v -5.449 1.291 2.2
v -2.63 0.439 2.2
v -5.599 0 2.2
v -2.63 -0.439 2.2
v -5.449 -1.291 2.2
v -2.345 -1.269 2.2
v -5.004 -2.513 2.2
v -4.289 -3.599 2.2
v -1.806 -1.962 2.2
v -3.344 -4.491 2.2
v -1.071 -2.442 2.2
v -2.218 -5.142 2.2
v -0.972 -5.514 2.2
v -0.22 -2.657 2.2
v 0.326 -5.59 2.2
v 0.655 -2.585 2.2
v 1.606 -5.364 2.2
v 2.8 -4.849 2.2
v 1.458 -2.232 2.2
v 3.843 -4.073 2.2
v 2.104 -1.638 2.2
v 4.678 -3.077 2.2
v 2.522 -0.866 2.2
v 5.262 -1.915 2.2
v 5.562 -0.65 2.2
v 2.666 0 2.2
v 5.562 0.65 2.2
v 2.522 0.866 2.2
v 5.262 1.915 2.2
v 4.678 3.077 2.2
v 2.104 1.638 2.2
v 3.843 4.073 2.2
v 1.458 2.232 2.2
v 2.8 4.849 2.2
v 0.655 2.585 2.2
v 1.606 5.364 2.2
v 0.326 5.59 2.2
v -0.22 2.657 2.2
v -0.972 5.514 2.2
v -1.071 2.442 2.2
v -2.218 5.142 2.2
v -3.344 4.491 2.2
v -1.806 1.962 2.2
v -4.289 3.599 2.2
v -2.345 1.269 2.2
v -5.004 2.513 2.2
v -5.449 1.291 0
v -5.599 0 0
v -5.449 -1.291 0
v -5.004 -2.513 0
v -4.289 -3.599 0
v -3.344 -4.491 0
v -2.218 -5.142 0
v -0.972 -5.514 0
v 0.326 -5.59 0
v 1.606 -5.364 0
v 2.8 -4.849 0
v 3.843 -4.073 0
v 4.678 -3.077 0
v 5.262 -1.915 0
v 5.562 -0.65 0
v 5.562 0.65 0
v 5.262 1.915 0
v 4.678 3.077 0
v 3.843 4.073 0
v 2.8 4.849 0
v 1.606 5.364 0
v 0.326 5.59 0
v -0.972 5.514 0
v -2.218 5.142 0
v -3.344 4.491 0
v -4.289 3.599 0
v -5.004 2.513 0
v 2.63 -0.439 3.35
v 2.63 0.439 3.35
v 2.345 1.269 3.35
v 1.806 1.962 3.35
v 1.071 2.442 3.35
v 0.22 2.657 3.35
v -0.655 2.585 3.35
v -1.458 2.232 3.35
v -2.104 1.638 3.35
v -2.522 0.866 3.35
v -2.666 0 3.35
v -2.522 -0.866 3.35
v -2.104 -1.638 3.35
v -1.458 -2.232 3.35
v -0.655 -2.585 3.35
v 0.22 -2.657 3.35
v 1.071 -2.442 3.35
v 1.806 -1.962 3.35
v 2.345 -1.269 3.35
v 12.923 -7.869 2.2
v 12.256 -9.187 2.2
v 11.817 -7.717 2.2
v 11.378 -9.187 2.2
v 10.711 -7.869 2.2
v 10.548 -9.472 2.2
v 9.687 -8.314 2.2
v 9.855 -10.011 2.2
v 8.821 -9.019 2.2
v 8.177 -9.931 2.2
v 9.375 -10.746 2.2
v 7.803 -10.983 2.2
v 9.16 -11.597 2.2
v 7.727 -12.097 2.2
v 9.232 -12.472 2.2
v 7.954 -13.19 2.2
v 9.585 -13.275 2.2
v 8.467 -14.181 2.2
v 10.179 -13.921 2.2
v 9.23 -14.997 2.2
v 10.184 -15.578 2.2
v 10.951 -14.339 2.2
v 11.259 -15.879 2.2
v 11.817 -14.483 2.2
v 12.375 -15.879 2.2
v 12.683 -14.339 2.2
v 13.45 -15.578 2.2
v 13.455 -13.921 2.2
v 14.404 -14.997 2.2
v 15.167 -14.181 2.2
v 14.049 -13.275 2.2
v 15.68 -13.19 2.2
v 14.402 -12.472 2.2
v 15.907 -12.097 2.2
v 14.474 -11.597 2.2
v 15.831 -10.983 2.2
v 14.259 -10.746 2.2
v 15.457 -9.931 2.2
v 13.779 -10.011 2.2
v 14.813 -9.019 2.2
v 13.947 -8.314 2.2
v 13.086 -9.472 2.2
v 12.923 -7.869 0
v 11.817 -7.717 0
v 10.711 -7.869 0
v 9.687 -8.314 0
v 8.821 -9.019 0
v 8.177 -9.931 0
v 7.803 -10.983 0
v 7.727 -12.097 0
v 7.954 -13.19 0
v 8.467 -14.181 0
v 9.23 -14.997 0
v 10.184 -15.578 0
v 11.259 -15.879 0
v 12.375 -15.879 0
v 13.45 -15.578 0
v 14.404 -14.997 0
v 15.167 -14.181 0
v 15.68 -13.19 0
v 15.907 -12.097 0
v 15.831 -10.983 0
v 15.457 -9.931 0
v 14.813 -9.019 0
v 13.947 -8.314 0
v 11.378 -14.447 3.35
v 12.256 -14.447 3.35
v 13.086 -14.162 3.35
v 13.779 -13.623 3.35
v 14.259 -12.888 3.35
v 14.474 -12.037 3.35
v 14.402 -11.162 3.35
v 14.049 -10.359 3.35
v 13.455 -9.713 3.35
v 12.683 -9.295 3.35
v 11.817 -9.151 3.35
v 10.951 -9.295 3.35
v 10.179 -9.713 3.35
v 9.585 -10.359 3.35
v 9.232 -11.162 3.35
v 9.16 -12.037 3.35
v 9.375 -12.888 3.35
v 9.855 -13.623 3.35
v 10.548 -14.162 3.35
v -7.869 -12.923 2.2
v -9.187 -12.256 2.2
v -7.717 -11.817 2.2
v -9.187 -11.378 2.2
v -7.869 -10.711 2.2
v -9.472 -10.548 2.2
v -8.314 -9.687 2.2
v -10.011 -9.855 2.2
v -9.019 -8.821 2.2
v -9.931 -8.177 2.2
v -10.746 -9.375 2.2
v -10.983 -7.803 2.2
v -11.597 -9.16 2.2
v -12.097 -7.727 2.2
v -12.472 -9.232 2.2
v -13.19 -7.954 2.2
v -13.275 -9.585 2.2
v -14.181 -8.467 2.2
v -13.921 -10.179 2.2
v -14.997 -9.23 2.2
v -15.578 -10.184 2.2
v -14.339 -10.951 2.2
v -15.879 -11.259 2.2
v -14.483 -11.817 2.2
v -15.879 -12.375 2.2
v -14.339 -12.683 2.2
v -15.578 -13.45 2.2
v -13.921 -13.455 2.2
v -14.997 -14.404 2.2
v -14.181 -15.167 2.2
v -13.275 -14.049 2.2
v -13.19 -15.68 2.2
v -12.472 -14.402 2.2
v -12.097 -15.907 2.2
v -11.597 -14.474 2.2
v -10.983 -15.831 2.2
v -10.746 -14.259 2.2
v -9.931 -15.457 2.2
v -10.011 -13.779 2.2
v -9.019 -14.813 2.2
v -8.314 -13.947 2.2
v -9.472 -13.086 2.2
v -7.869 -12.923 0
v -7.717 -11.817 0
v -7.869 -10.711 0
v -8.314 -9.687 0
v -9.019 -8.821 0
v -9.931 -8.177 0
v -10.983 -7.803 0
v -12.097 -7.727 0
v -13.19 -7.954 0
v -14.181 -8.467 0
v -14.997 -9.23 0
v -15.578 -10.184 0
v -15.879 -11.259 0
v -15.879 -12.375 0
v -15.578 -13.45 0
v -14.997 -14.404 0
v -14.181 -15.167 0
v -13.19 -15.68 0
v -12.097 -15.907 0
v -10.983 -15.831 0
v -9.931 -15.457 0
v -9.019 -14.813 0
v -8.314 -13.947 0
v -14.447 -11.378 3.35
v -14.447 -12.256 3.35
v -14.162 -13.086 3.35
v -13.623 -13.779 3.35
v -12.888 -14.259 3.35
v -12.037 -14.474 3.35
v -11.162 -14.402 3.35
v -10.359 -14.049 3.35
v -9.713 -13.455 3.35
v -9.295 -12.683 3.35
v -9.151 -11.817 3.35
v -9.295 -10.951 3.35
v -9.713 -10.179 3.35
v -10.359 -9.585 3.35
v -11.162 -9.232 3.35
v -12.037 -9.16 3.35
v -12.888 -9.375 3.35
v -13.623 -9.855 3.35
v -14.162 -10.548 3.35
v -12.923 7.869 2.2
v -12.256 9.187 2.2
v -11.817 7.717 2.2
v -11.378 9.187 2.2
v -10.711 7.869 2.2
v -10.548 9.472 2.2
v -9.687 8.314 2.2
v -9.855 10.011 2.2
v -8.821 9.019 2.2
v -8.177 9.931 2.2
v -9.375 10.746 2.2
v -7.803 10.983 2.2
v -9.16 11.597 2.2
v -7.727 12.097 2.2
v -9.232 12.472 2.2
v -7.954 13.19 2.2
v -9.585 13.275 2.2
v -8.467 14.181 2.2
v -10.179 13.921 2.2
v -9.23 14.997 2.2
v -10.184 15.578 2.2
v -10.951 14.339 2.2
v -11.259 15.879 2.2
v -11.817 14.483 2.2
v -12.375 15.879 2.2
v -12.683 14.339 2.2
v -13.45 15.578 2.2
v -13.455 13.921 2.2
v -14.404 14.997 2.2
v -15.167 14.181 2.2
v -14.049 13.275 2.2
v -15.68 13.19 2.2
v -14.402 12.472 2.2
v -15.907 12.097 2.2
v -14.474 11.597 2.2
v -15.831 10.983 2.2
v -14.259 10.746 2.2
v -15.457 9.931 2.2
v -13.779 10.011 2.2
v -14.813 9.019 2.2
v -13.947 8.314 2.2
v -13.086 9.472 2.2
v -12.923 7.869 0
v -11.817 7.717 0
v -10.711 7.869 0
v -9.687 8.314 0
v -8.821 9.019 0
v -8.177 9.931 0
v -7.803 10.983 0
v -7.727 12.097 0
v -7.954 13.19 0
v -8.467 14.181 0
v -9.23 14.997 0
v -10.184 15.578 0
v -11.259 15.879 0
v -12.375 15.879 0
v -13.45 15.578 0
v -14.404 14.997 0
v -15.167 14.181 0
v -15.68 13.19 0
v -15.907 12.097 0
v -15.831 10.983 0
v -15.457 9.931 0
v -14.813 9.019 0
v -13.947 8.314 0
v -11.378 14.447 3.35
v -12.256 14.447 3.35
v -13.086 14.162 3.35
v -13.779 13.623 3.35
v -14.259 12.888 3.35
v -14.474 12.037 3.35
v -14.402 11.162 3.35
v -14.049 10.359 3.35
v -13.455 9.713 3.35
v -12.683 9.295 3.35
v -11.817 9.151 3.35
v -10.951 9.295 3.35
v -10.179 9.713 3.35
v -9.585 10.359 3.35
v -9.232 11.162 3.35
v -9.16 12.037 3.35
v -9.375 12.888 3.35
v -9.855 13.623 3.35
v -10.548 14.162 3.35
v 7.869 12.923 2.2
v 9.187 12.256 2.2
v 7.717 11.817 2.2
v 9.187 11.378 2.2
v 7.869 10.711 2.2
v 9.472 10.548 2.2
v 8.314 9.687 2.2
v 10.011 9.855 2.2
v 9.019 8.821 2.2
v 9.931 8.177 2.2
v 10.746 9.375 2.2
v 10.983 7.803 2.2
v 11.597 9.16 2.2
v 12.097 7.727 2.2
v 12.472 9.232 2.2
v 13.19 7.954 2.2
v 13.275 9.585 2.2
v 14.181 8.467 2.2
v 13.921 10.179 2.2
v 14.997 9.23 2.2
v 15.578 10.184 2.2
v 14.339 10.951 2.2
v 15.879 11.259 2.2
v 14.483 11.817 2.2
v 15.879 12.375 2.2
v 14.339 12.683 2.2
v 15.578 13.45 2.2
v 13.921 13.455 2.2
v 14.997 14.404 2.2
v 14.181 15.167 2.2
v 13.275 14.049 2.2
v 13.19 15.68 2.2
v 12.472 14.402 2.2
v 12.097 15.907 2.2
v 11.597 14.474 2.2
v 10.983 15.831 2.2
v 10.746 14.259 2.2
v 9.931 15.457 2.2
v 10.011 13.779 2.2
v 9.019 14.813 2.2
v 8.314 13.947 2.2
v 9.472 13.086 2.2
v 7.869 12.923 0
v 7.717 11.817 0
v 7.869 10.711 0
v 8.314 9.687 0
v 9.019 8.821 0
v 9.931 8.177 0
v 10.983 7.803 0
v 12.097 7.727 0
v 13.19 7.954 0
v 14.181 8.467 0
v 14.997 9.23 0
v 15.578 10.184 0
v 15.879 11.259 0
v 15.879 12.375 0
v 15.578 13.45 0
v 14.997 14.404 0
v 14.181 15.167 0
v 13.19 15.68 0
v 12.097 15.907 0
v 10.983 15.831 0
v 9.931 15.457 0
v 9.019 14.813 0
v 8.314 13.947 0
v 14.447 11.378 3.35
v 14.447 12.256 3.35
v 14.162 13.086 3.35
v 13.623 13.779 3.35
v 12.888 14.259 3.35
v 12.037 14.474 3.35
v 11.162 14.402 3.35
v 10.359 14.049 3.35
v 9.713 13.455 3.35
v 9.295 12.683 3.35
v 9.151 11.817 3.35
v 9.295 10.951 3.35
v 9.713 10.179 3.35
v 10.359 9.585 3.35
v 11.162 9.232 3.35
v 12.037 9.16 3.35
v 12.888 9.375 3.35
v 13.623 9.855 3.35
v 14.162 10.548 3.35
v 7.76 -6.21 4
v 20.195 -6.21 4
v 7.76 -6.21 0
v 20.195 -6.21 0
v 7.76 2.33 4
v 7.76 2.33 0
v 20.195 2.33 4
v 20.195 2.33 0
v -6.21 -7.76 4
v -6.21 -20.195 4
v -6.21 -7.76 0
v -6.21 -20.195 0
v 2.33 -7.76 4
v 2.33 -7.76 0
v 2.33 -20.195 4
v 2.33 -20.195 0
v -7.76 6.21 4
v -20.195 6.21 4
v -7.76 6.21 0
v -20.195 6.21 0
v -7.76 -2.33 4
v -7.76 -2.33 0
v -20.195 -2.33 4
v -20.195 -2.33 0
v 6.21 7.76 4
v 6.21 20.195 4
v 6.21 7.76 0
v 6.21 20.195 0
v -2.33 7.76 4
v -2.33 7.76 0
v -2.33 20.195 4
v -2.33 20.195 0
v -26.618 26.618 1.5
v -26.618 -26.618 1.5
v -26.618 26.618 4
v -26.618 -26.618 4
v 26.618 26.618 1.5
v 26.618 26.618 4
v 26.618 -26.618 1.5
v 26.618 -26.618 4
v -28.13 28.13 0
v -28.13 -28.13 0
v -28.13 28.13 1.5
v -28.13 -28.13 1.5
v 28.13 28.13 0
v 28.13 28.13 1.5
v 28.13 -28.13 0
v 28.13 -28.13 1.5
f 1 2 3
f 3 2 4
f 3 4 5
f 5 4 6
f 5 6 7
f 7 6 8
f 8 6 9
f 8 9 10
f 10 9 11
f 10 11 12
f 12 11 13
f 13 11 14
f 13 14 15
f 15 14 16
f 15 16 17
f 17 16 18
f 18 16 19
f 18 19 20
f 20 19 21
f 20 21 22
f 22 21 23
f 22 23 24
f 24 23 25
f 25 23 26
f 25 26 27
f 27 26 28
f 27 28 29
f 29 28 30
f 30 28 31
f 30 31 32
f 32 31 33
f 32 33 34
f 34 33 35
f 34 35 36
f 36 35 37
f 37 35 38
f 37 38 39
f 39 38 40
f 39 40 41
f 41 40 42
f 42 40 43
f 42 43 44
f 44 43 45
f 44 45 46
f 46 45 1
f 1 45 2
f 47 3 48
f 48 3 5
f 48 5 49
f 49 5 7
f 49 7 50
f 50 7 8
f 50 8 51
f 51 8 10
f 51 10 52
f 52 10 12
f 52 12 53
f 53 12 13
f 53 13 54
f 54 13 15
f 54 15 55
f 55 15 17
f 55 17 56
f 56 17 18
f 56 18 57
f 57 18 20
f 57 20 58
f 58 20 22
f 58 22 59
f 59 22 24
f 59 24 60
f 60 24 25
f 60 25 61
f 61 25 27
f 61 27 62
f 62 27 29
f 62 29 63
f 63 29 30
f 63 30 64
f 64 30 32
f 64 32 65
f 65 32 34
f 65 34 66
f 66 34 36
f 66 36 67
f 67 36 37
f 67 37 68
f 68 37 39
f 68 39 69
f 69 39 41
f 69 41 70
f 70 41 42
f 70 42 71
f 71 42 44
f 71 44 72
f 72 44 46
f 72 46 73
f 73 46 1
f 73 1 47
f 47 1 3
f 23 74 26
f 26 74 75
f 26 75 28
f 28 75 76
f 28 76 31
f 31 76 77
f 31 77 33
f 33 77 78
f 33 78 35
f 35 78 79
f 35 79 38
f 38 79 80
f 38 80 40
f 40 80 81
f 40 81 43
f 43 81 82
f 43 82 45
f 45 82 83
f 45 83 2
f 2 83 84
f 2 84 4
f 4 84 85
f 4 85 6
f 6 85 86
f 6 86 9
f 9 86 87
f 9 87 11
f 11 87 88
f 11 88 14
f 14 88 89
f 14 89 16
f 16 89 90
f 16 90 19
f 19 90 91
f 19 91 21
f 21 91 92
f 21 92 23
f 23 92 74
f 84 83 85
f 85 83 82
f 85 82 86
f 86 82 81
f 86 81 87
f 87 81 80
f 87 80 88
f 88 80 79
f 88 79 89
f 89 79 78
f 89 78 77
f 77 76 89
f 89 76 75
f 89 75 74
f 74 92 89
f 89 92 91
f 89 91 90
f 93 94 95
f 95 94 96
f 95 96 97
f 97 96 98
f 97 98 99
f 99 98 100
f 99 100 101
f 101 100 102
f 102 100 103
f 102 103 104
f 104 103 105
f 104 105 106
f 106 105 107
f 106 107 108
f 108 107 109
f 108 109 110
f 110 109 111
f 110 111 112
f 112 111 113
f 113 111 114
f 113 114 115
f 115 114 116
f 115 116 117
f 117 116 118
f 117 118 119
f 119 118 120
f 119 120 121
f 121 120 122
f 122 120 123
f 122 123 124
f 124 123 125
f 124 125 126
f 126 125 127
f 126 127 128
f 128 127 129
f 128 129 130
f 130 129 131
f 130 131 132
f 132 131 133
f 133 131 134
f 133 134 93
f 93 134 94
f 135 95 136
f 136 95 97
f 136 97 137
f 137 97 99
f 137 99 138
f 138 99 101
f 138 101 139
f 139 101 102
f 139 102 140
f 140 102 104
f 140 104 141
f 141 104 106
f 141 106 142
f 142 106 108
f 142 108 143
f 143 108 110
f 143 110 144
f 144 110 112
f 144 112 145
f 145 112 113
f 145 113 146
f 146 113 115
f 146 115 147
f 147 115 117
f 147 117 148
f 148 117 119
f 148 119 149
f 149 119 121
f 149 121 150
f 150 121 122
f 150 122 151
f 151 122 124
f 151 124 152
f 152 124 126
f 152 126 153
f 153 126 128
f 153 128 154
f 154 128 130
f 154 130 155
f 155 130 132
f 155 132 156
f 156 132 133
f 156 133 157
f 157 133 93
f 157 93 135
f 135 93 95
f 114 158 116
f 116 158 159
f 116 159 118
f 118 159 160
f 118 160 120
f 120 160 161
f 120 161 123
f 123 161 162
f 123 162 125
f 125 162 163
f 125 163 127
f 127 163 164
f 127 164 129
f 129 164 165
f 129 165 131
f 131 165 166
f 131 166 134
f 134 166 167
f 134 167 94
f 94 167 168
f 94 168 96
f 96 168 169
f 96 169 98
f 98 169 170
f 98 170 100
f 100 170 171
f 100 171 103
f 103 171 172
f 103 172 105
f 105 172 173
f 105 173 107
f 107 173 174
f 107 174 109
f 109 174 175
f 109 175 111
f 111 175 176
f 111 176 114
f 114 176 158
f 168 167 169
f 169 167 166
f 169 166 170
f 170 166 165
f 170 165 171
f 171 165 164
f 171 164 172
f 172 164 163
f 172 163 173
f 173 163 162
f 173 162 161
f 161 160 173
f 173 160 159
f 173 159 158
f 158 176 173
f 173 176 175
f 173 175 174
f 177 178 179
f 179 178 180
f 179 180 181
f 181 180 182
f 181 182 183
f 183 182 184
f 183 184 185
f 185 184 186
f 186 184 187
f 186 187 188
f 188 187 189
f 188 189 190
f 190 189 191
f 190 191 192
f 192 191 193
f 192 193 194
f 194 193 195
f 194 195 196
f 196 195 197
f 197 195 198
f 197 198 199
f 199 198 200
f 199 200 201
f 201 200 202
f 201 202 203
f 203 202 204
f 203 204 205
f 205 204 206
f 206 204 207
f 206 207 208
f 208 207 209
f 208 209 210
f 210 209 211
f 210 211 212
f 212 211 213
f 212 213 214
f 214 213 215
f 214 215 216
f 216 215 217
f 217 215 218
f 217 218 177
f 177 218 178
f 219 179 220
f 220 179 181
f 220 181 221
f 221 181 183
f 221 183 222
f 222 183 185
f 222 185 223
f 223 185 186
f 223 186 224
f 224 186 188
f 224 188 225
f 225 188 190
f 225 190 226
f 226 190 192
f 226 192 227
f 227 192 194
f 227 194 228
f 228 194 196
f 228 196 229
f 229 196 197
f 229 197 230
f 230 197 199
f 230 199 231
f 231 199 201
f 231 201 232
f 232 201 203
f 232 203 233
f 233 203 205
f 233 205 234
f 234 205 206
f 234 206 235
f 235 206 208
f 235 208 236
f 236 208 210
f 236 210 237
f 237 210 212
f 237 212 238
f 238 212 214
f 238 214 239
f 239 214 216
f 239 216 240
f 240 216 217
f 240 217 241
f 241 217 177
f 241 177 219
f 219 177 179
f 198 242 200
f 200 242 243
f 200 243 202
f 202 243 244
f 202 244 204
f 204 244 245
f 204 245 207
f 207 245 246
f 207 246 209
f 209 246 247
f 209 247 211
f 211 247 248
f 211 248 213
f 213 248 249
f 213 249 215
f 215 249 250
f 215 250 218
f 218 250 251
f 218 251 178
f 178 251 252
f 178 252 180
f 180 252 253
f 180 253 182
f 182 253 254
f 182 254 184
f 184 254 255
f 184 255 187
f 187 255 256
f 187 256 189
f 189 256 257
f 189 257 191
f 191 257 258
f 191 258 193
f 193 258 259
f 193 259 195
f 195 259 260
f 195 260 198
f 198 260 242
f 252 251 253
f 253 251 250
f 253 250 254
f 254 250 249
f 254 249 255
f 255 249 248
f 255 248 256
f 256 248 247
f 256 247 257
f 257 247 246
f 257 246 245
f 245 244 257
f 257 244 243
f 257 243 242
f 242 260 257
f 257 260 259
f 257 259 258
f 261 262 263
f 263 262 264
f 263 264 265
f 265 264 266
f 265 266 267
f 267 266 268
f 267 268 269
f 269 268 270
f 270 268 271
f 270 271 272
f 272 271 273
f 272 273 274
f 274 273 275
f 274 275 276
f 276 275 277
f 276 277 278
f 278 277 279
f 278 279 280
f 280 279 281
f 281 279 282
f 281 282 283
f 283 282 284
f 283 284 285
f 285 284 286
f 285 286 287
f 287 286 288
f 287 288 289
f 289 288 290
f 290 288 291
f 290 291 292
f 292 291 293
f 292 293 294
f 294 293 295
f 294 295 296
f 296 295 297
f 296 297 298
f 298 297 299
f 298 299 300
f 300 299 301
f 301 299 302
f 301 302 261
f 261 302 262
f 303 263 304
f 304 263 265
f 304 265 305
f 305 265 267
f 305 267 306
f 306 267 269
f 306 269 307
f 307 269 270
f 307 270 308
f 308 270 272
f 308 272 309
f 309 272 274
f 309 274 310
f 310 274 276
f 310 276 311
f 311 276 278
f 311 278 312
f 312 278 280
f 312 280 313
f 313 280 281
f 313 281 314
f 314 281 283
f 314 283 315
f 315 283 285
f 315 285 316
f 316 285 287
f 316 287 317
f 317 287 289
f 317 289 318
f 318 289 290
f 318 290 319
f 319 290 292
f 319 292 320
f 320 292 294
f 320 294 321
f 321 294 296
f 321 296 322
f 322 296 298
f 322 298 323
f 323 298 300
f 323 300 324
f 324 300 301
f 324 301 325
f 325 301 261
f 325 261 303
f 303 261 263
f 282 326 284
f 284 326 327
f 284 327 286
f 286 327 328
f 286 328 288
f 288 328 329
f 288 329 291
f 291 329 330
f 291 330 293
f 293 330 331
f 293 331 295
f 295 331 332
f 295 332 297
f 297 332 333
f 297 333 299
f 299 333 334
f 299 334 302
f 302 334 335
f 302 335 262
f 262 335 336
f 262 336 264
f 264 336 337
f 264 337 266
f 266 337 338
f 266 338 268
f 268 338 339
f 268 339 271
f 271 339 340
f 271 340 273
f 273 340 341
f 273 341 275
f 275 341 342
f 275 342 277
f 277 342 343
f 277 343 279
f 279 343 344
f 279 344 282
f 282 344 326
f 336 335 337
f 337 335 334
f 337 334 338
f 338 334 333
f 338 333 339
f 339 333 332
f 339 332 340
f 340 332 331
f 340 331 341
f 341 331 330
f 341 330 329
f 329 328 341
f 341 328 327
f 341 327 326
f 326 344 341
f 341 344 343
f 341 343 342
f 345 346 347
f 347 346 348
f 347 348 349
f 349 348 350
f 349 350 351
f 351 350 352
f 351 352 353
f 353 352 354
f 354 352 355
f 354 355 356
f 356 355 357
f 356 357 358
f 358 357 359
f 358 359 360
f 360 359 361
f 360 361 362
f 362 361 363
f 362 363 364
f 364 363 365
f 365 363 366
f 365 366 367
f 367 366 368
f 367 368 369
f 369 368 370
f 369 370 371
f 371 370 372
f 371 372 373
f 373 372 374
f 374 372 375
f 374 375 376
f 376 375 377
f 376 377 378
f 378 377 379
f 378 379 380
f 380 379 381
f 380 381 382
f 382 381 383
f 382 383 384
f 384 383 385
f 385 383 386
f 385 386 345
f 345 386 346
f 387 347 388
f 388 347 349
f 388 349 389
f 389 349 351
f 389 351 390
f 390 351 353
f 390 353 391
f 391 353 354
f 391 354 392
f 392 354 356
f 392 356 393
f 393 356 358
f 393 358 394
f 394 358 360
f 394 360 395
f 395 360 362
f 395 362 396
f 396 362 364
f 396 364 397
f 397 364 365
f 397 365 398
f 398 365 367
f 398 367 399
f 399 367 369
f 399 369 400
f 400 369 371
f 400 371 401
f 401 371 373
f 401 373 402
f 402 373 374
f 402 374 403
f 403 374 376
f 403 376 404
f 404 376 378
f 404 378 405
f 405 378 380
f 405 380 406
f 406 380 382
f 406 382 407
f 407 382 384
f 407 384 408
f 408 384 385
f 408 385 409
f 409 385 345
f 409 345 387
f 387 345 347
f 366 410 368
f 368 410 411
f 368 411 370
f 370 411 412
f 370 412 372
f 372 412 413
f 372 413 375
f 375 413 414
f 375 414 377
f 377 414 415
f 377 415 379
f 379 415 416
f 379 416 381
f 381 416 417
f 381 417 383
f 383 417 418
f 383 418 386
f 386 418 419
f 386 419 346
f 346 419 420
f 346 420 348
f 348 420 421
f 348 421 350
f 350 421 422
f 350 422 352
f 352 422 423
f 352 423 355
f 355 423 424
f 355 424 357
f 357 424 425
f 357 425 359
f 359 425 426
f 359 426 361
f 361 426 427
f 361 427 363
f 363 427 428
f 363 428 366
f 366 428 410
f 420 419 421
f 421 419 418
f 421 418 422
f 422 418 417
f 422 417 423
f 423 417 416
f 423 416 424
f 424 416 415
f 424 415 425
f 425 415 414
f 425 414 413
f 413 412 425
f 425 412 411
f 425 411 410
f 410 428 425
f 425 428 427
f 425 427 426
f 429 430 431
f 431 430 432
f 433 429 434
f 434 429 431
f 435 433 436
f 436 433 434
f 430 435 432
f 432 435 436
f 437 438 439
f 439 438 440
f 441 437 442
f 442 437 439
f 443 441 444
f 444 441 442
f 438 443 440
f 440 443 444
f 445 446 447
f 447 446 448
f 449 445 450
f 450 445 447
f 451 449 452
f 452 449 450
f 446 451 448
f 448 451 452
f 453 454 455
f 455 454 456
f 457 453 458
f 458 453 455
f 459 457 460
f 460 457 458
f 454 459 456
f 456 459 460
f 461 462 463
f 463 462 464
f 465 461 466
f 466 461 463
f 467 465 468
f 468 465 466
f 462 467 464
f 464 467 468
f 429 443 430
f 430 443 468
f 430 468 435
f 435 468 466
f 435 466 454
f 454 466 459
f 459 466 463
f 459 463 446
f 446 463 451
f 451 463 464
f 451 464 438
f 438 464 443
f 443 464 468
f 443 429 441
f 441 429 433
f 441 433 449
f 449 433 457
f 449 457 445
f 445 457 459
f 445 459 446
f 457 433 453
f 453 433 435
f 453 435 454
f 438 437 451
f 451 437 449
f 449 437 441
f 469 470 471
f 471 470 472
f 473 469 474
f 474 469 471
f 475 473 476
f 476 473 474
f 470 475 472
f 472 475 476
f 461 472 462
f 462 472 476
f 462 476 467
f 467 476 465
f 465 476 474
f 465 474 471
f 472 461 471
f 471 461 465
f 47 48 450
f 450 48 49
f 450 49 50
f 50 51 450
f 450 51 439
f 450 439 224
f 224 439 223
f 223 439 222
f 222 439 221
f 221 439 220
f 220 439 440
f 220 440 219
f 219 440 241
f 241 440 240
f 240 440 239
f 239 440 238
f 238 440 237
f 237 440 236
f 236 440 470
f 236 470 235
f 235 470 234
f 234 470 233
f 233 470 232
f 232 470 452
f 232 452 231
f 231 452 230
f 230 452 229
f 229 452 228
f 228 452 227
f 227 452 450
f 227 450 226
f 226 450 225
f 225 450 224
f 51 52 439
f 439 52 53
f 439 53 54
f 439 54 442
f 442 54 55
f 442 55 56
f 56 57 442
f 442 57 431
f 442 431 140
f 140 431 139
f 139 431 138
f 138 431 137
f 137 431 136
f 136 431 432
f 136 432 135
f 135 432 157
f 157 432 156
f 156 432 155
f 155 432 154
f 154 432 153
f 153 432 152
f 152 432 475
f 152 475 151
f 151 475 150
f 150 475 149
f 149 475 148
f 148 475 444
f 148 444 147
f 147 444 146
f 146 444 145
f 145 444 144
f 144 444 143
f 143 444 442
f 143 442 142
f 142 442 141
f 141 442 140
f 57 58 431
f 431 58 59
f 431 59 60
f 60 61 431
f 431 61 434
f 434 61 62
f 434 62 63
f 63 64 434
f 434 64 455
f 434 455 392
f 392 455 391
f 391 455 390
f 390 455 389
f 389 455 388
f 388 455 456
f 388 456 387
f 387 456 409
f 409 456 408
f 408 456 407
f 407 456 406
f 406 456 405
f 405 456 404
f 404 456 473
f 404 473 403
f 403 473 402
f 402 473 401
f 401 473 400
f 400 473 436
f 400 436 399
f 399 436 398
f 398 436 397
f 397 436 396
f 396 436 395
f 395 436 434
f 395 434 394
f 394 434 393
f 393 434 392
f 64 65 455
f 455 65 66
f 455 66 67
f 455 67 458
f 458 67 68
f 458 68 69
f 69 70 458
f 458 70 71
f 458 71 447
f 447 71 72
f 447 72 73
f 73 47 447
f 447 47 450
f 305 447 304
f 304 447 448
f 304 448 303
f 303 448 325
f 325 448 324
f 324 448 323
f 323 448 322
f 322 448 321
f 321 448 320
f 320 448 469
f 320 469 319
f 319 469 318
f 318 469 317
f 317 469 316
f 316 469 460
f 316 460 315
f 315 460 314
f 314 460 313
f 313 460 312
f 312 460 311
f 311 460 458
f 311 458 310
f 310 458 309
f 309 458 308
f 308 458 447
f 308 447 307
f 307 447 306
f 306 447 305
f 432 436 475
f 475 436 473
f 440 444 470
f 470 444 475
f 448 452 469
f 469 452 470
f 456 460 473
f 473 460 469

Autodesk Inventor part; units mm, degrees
ref_plane "YZ Plane" through (0, 0, 0) normal (1, 0, 0) x (0, 1, 0)
ref_plane "XZ Plane" through (0, 0, 0) normal (0, 1, 0) x (-1, 0, 0)
ref_plane "XY Plane" through (0, 0, 0) normal (0, 0, 1) x (1, 0, 0)
sketch "Skizze1" plane through (0, 0, 0) normal (0, 0, 1) x (1, 0, 0)
  line L0 (-28.13, 28.13) -> (28.13, 28.13)
  line L1 (28.13, 28.13) -> (28.13, -28.13)
  line L2 (28.13, -28.13) -> (-28.13, -28.13)
  line L3 (-28.13, -28.13) -> (-28.13, 28.13)
  line L4 (-39.382, 0) -> (39.382, 0) construction
  line L5 (0, -39.382) -> (0, 39.382) construction
  point P0 (0, 0)
  dimension "d0" = 56.26
extrude "Extrusion1" add sketch "Skizze1" along normal blind 1.5
sketch "Skizze2" plane through (0, 0, 1.5) normal (0, 0, 1) x (1, 0, 0)
  line L0 (0, -39.382) -> (0, 39.382) construction
  line L1 (-39.382, 0) -> (39.382, 0) construction
  line L2 (-26.6175, 26.6175) -> (26.6175, 26.6175)
  line L3 (26.6175, 26.6175) -> (26.6175, -26.6175)
  line L4 (26.6175, -26.6175) -> (-26.6175, -26.6175)
  line L5 (-26.6175, -26.6175) -> (-26.6175, 26.6175)
  line L6 (28.13, 28.13) -> (-28.13, 28.13) projected
  point P0 (0, 0)
  dimension "d3" = 53.235
extrude "Extrusion2" add sketch "Skizze2" along normal blind 2.5
sketch "Skizze3" plane through (0, 0, 0) normal (0, 0, -1) x (-1, 0, 0)
  line L0 (28.13, -28.13) -> (-28.13, -28.13) projected
  line L1 (28.13, 28.13) -> (28.13, -28.13) projected
  line L2 (-28.13, 28.13) -> (28.13, 28.13) projected
  line L3 (-28.13, -28.13) -> (-28.13, 28.13) projected
  line L4 (-6.21, 20.195) -> (2.33, 20.195)
  line L5 (2.33, 20.195) -> (2.33, 7.76)
  line L6 (2.33, 7.76) -> (-6.21, 7.76)
  line L7 (-6.21, 7.76) -> (-6.21, 20.195)
  point P0 (0, 0)
  point P1 (0, 0)
  dimension "d6" = 21.92
  dimension "d7" = 8.54
  dimension "d8" = 12.435
  dimension "d9" = 35.89
extrude "Extrusion3" cut sketch "Skizze3" against normal up to surface (4 mm away) contours L4 L5 L6 L7
pattern_circular "Runde Anordnung1" count 4 over 360 about axis through (0, 0, -10) along (0, 0, 1) of "Extrusion3"
sketch "Skizze4" plane through (0, 0, 0) normal (0, 0, -1) x (-1, 0, 0)
  line L0 (-28.13, -28.13) -> (-28.13, 28.13) projected
  line L1 (-28.13, 28.13) -> (28.13, 28.13) projected
  point P0 (0, 0)
  point P1 (-11.817, 11.817)
  dimension "d15" = 16.313
  dimension "d16" = 16.313
hole "Bohrung1" at (11.817, 11.817, 0) direction (0, 0, 1) diameter 5.333 depth 3.35 counterbore diameter 8.2 counterbore depth 2.2
pattern_circular "Runde Anordnung2" count 4 over 360 about axis through (0, 0, -10) along (0, 0, 1) of "Bohrung1"
sketch "Skizze5" plane through (0, 0, 0) normal (0, 0, -1) x (-1, 0, 0)
  point P0 (0, 0)
  point P1 (0, 0)
hole "Bohrung2" at (0, 0, 0) direction (0, 0, 1) diameter 5.333 depth 3.35 counterbore diameter 11.199 counterbore depth 2.2
properties part number "PCB_cover_platte_0,2_reduziert"
